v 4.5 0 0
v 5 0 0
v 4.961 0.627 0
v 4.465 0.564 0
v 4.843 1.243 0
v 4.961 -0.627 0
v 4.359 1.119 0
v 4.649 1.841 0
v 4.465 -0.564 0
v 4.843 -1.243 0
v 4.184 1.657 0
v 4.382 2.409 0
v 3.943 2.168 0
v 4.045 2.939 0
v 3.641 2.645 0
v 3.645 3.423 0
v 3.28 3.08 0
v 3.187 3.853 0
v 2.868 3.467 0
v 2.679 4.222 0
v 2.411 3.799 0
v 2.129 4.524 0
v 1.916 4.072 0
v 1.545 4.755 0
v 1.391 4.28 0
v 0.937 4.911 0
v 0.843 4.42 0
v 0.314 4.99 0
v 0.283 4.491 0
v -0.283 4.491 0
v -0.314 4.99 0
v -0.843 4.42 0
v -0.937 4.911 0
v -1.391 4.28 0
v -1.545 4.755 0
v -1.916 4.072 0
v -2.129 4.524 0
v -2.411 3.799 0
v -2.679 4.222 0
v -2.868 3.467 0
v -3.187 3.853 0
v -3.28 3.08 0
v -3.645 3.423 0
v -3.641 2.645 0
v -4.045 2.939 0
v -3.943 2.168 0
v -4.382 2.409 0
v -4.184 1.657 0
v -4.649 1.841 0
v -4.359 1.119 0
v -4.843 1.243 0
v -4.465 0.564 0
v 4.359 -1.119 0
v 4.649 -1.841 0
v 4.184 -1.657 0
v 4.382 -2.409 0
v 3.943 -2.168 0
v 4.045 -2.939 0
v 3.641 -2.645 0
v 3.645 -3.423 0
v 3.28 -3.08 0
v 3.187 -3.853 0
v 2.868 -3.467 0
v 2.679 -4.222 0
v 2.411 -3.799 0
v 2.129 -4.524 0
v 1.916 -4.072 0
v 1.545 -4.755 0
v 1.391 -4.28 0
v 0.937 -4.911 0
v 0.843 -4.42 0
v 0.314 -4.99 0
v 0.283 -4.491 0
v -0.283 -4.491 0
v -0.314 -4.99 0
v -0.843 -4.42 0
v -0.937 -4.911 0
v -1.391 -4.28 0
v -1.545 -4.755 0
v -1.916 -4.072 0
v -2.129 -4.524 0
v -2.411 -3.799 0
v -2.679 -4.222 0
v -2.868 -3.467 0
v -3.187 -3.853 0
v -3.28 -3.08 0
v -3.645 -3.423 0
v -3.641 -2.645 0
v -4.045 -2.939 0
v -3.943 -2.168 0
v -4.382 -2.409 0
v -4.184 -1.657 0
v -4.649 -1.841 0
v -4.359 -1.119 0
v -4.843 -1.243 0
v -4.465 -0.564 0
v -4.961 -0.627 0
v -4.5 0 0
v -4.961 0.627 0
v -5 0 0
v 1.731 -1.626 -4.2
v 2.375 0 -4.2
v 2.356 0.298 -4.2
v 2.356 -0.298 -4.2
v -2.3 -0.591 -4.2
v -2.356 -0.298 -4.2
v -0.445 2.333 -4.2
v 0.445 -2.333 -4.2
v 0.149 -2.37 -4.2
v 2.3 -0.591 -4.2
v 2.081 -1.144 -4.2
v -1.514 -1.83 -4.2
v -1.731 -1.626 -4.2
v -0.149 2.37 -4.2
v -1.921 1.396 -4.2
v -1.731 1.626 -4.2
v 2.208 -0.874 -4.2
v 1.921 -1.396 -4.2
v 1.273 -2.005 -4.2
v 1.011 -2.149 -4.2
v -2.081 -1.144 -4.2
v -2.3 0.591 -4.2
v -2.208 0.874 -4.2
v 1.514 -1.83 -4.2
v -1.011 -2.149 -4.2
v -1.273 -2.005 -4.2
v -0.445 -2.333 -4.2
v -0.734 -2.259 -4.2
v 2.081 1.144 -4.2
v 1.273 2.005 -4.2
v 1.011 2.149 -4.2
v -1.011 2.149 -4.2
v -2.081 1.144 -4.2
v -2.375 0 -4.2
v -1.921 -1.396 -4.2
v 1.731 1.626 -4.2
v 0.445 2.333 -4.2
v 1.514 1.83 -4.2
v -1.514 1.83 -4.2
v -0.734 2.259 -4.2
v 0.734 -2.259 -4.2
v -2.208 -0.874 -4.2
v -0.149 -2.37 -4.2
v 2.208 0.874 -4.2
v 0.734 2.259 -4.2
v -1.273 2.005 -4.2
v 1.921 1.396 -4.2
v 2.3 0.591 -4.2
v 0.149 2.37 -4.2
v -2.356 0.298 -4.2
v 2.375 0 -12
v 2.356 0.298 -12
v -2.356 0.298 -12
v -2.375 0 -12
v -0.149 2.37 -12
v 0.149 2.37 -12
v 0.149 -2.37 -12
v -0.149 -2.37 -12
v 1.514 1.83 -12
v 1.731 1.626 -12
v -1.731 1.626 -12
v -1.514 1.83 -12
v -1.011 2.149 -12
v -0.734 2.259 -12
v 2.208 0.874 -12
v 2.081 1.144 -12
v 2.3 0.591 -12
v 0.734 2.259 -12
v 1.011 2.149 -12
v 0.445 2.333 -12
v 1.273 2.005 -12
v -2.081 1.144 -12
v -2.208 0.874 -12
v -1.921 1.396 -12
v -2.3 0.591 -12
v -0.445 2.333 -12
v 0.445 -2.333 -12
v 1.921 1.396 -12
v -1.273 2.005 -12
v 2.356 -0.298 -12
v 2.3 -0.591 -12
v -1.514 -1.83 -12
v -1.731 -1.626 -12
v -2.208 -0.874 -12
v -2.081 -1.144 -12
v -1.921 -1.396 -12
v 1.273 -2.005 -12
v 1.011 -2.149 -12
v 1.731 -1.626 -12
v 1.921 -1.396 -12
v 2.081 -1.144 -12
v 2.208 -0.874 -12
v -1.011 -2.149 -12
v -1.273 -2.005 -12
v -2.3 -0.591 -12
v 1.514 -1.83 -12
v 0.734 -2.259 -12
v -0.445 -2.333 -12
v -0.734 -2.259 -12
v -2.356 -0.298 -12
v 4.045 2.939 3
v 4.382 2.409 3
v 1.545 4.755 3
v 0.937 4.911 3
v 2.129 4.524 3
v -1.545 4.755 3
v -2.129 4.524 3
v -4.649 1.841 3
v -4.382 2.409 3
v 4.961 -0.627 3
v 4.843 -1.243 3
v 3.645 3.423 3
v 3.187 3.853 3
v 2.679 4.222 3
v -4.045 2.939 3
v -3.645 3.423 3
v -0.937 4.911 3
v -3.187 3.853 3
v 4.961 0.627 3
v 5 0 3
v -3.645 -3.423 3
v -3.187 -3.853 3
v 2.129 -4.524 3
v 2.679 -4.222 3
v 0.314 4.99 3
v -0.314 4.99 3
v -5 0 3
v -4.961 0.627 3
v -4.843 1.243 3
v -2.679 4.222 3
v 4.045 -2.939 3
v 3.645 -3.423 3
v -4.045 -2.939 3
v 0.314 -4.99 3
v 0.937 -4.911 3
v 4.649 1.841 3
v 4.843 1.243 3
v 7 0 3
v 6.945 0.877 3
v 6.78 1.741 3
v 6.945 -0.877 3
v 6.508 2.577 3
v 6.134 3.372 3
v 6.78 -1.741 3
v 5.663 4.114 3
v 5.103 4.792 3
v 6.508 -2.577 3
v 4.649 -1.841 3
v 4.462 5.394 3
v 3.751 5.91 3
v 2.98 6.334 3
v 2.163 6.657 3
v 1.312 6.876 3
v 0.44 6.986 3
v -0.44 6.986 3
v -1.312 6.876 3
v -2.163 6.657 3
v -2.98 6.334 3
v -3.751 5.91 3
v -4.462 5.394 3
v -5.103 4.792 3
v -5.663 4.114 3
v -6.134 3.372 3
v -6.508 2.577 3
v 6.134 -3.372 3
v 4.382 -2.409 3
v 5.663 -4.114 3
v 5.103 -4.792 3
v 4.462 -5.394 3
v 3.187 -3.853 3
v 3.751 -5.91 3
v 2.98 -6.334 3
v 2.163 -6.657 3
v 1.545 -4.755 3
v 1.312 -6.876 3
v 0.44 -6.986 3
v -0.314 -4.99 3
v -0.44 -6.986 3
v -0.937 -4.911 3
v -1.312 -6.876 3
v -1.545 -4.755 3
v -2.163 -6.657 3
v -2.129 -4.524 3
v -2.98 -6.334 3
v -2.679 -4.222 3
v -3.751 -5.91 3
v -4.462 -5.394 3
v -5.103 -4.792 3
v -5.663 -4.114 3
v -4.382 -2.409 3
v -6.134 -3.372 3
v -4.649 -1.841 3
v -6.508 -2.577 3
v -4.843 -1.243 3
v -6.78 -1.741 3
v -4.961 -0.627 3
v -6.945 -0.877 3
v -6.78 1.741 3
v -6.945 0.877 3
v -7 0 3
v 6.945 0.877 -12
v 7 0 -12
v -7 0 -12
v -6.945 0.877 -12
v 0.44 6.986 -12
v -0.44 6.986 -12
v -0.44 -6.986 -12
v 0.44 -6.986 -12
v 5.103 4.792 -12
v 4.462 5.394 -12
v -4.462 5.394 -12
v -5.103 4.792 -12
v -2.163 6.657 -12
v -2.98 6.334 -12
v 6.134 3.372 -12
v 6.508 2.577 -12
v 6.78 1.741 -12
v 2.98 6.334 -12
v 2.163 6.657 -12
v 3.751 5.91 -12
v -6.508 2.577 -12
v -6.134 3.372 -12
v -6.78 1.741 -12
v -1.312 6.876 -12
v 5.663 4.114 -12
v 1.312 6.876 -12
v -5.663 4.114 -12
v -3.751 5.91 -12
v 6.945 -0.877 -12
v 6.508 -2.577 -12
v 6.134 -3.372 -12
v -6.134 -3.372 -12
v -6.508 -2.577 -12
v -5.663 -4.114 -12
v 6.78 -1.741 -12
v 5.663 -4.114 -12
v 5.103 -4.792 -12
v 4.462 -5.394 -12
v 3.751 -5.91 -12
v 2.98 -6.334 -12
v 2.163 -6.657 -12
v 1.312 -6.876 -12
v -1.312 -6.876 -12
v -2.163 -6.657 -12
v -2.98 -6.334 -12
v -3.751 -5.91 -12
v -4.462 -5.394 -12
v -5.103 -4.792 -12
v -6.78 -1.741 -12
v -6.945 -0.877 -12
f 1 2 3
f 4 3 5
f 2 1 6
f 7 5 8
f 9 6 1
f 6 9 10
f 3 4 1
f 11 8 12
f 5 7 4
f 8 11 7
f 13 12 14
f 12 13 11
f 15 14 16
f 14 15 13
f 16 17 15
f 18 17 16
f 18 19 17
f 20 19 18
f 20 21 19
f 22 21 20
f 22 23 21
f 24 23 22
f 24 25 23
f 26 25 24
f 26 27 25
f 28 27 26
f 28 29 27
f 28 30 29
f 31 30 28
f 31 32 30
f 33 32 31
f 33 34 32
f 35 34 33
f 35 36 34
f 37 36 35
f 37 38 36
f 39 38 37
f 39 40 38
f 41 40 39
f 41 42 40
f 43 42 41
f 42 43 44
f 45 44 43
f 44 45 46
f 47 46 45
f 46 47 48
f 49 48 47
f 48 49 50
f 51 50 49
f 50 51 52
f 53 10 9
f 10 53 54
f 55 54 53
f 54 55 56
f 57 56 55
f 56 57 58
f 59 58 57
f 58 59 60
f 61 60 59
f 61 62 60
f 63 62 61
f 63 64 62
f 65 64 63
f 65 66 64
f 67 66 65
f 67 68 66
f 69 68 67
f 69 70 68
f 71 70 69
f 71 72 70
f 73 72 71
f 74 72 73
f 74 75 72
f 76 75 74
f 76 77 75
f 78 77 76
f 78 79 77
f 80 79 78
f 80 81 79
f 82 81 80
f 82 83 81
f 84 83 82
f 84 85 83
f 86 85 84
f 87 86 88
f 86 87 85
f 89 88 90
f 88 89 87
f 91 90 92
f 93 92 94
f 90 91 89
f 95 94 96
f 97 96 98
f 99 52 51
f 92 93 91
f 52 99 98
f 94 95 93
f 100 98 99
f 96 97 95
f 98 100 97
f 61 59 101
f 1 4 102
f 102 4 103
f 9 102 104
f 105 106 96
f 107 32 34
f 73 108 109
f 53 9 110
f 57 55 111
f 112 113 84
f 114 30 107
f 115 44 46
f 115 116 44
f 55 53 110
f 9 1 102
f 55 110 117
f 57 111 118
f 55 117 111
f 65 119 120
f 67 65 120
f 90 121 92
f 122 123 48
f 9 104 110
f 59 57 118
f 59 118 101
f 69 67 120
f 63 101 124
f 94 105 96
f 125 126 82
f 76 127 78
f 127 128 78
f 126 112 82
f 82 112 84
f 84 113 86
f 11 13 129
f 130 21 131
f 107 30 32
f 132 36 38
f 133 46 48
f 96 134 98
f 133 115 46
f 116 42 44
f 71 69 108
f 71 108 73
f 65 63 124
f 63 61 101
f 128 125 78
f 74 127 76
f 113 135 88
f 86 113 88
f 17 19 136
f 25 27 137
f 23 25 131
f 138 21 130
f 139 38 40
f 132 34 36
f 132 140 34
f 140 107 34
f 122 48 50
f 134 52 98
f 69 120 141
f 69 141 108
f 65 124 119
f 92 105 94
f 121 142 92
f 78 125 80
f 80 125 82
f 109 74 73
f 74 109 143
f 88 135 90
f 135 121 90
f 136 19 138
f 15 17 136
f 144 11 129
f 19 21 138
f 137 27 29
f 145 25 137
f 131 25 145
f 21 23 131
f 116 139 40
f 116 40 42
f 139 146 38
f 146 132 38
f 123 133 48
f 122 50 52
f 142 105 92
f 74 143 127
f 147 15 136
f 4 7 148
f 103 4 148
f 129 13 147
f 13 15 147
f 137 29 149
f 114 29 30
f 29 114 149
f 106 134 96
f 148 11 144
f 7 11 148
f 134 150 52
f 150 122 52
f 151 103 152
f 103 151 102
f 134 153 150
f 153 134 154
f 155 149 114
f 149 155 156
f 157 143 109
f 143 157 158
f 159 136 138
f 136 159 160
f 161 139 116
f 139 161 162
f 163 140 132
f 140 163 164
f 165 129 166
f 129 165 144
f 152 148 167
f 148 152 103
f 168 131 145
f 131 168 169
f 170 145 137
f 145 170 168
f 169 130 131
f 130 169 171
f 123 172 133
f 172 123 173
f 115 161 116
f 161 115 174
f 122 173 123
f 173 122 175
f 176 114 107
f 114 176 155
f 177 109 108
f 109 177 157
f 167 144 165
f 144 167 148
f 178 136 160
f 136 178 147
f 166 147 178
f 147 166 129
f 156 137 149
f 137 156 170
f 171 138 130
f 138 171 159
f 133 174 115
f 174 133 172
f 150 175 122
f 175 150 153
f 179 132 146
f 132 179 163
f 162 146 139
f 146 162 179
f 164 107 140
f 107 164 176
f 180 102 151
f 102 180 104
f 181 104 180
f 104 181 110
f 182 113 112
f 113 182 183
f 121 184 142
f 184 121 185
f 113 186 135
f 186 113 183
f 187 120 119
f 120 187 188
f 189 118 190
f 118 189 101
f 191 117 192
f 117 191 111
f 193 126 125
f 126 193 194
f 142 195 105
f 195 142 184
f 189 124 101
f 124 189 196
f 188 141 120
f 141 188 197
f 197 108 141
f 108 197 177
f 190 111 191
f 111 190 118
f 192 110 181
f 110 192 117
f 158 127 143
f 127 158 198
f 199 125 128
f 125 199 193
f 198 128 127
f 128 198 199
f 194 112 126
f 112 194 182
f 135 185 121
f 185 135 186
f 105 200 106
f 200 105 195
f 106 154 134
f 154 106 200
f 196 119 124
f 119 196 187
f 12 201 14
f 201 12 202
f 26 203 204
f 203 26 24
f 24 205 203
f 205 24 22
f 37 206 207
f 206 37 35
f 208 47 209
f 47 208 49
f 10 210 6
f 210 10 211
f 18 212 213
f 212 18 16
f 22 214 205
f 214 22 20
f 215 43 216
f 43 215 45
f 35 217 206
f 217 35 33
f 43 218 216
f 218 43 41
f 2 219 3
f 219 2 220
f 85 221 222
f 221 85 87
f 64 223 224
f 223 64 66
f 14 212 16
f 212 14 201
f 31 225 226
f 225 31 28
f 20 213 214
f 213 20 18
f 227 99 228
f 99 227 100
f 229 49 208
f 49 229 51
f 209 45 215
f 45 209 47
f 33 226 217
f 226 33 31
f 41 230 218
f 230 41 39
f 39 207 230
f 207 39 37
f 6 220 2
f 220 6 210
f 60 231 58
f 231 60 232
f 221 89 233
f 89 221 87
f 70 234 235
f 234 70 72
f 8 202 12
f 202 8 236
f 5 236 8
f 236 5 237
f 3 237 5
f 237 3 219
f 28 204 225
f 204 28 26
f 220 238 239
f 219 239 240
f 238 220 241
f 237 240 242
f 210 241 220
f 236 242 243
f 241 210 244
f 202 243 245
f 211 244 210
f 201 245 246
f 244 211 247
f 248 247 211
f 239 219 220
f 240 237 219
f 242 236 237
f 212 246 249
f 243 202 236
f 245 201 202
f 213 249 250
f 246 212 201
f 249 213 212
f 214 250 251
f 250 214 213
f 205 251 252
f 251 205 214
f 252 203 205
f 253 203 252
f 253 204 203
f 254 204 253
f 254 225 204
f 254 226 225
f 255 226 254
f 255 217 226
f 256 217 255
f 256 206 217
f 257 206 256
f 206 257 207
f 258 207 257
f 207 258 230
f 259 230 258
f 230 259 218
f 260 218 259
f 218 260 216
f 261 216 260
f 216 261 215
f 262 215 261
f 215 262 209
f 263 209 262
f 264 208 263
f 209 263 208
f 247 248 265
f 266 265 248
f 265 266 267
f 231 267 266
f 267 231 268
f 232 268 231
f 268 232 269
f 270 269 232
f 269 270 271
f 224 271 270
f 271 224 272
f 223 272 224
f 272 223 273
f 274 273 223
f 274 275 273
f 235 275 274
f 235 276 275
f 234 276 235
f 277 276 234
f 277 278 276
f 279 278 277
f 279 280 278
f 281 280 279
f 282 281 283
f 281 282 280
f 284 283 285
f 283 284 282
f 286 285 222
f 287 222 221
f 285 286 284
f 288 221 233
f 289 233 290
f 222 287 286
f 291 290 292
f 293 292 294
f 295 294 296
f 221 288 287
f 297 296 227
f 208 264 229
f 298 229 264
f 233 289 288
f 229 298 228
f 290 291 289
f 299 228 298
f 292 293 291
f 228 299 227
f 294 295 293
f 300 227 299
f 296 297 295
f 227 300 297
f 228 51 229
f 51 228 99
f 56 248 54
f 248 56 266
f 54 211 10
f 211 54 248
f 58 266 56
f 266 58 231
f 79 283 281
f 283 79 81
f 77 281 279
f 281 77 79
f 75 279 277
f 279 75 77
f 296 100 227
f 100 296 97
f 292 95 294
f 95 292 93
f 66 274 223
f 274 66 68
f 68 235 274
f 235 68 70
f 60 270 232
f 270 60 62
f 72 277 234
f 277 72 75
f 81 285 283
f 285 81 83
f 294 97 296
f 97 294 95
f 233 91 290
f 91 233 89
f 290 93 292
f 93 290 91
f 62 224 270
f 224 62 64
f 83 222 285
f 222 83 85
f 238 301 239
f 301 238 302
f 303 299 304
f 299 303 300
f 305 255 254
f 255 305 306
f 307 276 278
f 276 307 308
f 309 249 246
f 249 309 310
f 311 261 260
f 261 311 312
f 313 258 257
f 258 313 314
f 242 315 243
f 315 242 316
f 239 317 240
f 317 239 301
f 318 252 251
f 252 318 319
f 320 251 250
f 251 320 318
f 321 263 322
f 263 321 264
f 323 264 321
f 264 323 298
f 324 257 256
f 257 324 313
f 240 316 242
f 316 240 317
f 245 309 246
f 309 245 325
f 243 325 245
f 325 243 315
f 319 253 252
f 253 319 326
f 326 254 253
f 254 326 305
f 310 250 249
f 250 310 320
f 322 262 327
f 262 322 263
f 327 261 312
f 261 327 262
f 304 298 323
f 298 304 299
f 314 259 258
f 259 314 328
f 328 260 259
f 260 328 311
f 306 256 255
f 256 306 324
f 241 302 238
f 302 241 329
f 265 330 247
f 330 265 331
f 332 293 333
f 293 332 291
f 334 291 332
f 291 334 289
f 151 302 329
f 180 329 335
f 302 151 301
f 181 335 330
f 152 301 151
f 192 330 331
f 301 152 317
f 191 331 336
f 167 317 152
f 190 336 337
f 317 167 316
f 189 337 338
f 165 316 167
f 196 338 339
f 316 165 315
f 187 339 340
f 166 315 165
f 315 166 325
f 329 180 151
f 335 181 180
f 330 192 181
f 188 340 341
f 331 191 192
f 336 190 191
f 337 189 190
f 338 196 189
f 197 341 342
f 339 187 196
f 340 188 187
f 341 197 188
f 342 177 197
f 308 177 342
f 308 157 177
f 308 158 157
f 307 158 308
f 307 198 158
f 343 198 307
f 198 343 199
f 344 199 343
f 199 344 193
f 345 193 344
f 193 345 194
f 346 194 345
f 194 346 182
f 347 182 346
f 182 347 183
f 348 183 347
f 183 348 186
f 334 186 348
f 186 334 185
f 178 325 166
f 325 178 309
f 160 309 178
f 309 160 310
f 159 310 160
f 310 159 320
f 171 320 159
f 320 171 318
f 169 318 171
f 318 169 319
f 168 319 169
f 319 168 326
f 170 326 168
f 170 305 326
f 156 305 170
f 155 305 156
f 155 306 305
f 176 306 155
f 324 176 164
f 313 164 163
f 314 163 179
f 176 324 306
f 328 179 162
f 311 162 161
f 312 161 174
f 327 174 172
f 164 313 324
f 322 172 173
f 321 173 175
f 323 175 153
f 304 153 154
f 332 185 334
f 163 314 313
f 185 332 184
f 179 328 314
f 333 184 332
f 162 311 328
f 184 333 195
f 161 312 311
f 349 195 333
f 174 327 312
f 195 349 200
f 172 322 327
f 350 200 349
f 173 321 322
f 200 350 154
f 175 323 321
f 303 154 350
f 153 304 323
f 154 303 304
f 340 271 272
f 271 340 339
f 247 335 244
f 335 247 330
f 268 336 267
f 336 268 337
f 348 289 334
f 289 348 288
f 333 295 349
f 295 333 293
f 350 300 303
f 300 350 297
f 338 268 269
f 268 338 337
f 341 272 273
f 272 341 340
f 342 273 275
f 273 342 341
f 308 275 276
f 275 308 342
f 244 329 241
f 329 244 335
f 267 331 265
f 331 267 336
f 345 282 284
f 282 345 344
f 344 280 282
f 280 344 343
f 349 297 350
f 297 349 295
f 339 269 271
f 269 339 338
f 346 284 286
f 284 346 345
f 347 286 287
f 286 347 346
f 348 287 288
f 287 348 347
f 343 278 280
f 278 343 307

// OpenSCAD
$fn = 50;


difference() {
	union() {
		translate(v = [0, 0, -12.0000000000]) {
			cylinder(h = 15, r = 7.0000000000);
		}
	}
	union() {
		translate(v = [0, 0, 0]) {
			rotate(a = [0, 0, 0]) {
				difference() {
					union() {
						translate(v = [0, 0, -15.0000000000]) {
							cylinder(h = 15, r = 2.2500000000);
						}
						translate(v = [0, 0, -4.2000000000]) {
							cylinder(h = 4.2000000000, r1 = 2.3750000000, r2 = 4.5000000000);
						}
						translate(v = [0, 0, -15.0000000000]) {
							cylinder(h = 15, r = 2.3750000000);
						}
						translate(v = [0, 0, -15.0000000000]) {
							cylinder(h = 15, r = 2.2500000000);
						}
					}
					union();
				}
			}
		}
		#cylinder(h = 3, r = 5.0000000000);
	}
}
